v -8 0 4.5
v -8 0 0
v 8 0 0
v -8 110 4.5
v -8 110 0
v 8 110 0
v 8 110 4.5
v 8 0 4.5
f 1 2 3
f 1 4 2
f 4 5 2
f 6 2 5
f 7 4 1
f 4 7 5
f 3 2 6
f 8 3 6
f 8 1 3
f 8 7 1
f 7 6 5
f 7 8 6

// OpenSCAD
// M7 wrench
// Geometry follows the holder clearance profile. Its dimensions describe the pocket used in the source design. Physical tool dimensions and fit have yet to be measured.
// Units: mm
$fn = 64;
union() {
    translate([0, 0.0, 0]) rotate([0, 0, 0])
        linear_extrude(height=4.5) polygon(points=[[-8, 0], [-8, 110], [8, 110], [8, 0]]);
}
